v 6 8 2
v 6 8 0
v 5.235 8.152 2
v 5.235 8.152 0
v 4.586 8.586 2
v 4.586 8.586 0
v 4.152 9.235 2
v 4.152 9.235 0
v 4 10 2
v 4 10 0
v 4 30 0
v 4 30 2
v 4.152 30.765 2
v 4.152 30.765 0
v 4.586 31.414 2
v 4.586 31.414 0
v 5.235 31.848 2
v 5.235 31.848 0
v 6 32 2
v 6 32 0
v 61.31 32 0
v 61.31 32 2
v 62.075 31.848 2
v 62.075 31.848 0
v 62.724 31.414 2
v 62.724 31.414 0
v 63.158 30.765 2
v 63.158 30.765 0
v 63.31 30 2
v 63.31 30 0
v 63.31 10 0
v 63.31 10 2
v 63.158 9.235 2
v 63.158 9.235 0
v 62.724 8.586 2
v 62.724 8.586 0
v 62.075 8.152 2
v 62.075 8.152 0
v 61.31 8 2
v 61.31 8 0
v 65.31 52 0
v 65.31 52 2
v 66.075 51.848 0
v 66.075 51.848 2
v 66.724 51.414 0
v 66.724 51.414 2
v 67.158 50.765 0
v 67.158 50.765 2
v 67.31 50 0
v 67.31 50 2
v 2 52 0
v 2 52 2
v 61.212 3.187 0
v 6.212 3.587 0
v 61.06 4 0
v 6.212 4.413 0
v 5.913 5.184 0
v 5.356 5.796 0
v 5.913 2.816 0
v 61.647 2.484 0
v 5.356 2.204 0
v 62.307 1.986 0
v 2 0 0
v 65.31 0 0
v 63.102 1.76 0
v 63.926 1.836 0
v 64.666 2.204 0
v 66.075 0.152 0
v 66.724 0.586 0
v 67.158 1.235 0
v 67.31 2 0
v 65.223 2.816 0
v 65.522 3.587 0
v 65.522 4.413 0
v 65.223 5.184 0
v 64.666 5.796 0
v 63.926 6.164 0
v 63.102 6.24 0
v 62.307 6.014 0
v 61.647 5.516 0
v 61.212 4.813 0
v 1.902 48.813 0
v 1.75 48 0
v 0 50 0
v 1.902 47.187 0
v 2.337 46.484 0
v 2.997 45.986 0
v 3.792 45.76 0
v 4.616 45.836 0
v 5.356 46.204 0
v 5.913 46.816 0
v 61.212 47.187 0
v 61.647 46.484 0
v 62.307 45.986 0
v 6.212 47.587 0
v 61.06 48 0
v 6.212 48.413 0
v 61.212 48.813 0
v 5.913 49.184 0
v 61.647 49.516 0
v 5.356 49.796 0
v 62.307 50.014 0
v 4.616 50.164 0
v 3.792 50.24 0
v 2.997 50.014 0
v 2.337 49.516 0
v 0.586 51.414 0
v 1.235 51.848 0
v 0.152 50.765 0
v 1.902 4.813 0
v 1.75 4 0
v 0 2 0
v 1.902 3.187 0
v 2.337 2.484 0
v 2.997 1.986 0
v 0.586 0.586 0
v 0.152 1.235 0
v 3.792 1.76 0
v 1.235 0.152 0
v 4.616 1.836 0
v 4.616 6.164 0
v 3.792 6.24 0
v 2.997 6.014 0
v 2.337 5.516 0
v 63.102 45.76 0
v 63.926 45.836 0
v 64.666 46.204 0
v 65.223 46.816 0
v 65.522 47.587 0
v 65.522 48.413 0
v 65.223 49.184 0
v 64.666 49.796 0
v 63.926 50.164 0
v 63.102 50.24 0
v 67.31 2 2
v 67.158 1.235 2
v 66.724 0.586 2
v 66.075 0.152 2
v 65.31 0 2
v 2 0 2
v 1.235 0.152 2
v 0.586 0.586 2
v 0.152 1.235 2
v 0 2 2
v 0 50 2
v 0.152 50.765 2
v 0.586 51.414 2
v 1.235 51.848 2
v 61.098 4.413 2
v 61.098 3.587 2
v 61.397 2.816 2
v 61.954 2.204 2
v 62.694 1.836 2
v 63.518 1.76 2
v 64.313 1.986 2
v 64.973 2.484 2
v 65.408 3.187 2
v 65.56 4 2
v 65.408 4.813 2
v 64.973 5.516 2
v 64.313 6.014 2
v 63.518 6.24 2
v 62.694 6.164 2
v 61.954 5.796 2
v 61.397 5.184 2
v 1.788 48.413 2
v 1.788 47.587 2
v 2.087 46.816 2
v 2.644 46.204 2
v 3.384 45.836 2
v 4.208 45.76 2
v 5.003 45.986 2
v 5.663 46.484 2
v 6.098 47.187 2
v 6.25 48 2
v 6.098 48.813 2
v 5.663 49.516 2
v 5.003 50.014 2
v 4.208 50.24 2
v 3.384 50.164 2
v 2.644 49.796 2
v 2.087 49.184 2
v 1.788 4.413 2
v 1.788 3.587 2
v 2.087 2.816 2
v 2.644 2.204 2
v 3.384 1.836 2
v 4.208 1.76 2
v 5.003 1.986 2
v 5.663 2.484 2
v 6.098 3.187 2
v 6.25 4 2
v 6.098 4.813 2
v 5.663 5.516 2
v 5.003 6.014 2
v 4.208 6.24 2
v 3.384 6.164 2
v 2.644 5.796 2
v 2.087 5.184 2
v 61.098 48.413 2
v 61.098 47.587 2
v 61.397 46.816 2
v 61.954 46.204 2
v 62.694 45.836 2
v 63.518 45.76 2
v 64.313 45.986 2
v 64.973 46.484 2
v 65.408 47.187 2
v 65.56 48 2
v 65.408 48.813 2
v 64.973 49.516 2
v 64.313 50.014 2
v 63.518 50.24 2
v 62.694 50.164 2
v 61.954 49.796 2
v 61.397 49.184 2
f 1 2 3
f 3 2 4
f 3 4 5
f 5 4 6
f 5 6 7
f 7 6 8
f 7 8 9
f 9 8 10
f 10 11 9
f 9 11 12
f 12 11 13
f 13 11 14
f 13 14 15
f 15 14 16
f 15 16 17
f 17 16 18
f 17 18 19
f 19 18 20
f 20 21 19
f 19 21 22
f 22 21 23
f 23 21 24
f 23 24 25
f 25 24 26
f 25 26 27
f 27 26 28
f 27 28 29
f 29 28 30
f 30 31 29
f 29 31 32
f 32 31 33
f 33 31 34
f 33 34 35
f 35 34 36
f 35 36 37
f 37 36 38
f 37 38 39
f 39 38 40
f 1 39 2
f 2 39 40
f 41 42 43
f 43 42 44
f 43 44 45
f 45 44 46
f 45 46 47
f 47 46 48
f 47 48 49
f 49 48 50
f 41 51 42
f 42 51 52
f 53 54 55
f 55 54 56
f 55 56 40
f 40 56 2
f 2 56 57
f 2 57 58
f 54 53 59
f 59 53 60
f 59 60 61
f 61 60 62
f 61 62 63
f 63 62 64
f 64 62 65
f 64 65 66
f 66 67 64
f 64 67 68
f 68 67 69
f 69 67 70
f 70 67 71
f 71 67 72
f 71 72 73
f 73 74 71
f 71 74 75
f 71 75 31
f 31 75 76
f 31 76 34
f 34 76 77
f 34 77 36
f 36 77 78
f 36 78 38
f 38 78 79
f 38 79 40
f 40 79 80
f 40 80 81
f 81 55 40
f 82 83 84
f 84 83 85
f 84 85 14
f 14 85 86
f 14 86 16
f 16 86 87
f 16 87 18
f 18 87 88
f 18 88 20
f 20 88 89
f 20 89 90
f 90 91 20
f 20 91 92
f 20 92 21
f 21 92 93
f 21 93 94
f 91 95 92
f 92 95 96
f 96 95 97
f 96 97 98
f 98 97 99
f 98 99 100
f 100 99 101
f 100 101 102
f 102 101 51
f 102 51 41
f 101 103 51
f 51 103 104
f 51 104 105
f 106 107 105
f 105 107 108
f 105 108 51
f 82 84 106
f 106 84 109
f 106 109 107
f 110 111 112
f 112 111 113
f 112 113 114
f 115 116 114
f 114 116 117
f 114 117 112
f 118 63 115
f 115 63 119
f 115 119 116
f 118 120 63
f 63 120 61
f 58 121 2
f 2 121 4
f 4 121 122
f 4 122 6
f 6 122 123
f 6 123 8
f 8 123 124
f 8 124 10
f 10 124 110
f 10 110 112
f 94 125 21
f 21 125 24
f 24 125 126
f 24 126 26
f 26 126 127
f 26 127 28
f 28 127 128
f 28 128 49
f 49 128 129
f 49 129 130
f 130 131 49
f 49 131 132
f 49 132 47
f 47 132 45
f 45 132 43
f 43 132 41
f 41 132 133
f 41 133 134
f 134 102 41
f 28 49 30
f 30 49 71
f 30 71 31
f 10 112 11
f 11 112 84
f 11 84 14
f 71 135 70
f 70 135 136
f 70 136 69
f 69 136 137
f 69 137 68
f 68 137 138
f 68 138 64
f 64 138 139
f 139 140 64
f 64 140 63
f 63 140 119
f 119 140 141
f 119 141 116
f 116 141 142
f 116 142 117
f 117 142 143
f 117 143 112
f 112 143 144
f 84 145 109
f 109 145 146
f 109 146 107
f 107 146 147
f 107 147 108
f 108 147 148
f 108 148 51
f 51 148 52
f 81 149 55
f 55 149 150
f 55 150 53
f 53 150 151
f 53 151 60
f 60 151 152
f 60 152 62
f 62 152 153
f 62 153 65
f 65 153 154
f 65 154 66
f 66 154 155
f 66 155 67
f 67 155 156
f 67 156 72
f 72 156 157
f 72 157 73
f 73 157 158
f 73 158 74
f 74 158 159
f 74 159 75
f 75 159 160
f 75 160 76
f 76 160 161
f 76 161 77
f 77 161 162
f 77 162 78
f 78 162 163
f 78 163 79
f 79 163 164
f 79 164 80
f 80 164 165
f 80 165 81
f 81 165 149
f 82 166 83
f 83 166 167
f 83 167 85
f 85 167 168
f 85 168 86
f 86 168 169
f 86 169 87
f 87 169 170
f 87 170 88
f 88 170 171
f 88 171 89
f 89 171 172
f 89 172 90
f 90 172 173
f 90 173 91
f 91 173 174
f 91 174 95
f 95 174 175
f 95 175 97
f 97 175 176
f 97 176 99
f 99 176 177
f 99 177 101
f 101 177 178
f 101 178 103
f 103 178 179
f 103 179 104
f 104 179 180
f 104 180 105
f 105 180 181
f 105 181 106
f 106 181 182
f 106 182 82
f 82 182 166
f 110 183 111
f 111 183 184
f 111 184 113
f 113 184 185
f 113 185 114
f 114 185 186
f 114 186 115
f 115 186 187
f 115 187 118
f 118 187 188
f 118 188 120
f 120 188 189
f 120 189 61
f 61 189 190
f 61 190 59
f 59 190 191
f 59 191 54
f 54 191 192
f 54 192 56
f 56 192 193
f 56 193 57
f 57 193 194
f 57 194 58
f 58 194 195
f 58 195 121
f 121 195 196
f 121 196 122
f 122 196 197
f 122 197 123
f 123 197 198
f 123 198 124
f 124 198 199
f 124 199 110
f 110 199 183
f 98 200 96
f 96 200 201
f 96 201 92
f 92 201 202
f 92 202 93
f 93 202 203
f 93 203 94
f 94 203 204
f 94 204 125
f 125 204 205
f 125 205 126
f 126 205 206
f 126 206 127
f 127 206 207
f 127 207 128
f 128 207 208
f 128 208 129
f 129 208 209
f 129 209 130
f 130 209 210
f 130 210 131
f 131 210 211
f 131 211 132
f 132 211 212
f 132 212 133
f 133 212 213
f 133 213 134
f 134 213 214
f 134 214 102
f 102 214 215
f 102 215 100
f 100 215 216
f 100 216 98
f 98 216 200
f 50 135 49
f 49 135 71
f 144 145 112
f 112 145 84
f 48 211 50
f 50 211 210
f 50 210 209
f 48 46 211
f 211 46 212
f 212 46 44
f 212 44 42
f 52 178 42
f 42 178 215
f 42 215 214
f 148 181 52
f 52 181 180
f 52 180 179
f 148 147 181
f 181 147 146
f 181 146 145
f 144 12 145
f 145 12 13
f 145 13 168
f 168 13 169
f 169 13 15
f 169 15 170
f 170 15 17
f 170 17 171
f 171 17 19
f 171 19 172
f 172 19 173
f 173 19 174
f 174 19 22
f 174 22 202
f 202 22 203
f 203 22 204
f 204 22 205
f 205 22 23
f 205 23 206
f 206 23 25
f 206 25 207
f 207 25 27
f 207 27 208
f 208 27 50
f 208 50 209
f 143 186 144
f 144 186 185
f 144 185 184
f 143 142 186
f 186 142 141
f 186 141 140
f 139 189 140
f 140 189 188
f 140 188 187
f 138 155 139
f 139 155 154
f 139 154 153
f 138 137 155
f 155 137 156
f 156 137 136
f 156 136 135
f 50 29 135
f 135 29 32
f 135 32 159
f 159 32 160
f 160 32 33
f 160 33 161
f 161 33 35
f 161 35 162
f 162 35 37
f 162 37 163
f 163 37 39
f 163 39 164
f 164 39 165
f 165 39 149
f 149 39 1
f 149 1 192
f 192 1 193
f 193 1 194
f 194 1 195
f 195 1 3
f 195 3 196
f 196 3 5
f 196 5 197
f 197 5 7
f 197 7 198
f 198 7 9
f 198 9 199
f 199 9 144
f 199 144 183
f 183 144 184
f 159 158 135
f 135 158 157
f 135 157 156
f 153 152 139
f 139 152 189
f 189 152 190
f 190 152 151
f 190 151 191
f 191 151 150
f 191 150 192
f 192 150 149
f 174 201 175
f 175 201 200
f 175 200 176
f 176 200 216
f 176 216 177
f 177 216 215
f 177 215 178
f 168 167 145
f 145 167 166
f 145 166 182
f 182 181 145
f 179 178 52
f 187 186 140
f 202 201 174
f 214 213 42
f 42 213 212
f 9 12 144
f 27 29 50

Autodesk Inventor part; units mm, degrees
ref_plane "YZ Plane" through (0, 0, 0) normal (1, 0, 0) x (0, 1, 0)
ref_plane "XZ Plane" through (0, 0, 0) normal (0, 1, 0) x (-1, 0, 0)
ref_plane "XY Plane" through (0, 0, 0) normal (0, 0, 1) x (1, 0, 0)
sketch "Sketch1" plane through (0, 0, 0) normal (0, 0, 1) x (1, 0, 0)
  line L0 (0, 0) -> (67.31, 0)
  line L1 (67.31, 0) -> (67.31, 52)
  line L2 (67.31, 52) -> (0, 52)
  line L3 (0, 52) -> (0, 0)
  line L4 (4, 8) -> (63.31, 8)
  line L5 (63.31, 8) -> (63.31, 32)
  line L6 (63.31, 32) -> (4, 32)
  line L7 (4, 32) -> (4, 8)
  dimension "d0" = 67.31
  dimension "d1" = 52
  dimension "d2" = 59.31
  dimension "d4" = 4
  dimension "d5" = 8
  dimension "d19" = 20
extrude "Extrusion1" add sketch "Sketch1" along normal blind 2
sketch "Sketch2" plane through (0, 0, 2) normal (0, 0, 1) x (1, 0, 0)
  line L0 (0, 0) -> (67.31, 0) projected
  line L1 (4, 0) -> (4, 39.8865)
  line L2 (0, 52) -> (0, 0) projected
  line L3 (0, 48) -> (67.31, 48)
  line L4 (63.31, 39.878) -> (63.31, 0)
  line L5 (0, 4) -> (67.31, 4)
  line L6 (67.31, 52) -> (0, 52) projected
  line L7 (67.31, 0) -> (67.31, 52) projected
  point P0 (4, 48)
  point P1 (4, 4)
  point P2 (63.31, 4)
  point P3 (63.31, 48)
  dimension "d8" = 4
  dimension "d9" = 4
  dimension "d10" = 4
  dimension "d11" = 4
hole "Hole1" at (4, 48, 2) at (4, 4, 2) at (63.31, 4, 2) at (63.31, 48, 2) direction (0, 0, -1) diameter 4.5 end through all
fillet "Fillet1" radius 2 4 edges at (0, 52, 1) (0, 0, 1) (67.31, 0, 1) (67.31, 52, 1)
fillet "Fillet2" radius 2 4 edges at (63.31, 8, 1) (63.31, 32, 1) (4, 32, 1) (4, 8, 1)
properties part number "cosmic-watch-endplate"
